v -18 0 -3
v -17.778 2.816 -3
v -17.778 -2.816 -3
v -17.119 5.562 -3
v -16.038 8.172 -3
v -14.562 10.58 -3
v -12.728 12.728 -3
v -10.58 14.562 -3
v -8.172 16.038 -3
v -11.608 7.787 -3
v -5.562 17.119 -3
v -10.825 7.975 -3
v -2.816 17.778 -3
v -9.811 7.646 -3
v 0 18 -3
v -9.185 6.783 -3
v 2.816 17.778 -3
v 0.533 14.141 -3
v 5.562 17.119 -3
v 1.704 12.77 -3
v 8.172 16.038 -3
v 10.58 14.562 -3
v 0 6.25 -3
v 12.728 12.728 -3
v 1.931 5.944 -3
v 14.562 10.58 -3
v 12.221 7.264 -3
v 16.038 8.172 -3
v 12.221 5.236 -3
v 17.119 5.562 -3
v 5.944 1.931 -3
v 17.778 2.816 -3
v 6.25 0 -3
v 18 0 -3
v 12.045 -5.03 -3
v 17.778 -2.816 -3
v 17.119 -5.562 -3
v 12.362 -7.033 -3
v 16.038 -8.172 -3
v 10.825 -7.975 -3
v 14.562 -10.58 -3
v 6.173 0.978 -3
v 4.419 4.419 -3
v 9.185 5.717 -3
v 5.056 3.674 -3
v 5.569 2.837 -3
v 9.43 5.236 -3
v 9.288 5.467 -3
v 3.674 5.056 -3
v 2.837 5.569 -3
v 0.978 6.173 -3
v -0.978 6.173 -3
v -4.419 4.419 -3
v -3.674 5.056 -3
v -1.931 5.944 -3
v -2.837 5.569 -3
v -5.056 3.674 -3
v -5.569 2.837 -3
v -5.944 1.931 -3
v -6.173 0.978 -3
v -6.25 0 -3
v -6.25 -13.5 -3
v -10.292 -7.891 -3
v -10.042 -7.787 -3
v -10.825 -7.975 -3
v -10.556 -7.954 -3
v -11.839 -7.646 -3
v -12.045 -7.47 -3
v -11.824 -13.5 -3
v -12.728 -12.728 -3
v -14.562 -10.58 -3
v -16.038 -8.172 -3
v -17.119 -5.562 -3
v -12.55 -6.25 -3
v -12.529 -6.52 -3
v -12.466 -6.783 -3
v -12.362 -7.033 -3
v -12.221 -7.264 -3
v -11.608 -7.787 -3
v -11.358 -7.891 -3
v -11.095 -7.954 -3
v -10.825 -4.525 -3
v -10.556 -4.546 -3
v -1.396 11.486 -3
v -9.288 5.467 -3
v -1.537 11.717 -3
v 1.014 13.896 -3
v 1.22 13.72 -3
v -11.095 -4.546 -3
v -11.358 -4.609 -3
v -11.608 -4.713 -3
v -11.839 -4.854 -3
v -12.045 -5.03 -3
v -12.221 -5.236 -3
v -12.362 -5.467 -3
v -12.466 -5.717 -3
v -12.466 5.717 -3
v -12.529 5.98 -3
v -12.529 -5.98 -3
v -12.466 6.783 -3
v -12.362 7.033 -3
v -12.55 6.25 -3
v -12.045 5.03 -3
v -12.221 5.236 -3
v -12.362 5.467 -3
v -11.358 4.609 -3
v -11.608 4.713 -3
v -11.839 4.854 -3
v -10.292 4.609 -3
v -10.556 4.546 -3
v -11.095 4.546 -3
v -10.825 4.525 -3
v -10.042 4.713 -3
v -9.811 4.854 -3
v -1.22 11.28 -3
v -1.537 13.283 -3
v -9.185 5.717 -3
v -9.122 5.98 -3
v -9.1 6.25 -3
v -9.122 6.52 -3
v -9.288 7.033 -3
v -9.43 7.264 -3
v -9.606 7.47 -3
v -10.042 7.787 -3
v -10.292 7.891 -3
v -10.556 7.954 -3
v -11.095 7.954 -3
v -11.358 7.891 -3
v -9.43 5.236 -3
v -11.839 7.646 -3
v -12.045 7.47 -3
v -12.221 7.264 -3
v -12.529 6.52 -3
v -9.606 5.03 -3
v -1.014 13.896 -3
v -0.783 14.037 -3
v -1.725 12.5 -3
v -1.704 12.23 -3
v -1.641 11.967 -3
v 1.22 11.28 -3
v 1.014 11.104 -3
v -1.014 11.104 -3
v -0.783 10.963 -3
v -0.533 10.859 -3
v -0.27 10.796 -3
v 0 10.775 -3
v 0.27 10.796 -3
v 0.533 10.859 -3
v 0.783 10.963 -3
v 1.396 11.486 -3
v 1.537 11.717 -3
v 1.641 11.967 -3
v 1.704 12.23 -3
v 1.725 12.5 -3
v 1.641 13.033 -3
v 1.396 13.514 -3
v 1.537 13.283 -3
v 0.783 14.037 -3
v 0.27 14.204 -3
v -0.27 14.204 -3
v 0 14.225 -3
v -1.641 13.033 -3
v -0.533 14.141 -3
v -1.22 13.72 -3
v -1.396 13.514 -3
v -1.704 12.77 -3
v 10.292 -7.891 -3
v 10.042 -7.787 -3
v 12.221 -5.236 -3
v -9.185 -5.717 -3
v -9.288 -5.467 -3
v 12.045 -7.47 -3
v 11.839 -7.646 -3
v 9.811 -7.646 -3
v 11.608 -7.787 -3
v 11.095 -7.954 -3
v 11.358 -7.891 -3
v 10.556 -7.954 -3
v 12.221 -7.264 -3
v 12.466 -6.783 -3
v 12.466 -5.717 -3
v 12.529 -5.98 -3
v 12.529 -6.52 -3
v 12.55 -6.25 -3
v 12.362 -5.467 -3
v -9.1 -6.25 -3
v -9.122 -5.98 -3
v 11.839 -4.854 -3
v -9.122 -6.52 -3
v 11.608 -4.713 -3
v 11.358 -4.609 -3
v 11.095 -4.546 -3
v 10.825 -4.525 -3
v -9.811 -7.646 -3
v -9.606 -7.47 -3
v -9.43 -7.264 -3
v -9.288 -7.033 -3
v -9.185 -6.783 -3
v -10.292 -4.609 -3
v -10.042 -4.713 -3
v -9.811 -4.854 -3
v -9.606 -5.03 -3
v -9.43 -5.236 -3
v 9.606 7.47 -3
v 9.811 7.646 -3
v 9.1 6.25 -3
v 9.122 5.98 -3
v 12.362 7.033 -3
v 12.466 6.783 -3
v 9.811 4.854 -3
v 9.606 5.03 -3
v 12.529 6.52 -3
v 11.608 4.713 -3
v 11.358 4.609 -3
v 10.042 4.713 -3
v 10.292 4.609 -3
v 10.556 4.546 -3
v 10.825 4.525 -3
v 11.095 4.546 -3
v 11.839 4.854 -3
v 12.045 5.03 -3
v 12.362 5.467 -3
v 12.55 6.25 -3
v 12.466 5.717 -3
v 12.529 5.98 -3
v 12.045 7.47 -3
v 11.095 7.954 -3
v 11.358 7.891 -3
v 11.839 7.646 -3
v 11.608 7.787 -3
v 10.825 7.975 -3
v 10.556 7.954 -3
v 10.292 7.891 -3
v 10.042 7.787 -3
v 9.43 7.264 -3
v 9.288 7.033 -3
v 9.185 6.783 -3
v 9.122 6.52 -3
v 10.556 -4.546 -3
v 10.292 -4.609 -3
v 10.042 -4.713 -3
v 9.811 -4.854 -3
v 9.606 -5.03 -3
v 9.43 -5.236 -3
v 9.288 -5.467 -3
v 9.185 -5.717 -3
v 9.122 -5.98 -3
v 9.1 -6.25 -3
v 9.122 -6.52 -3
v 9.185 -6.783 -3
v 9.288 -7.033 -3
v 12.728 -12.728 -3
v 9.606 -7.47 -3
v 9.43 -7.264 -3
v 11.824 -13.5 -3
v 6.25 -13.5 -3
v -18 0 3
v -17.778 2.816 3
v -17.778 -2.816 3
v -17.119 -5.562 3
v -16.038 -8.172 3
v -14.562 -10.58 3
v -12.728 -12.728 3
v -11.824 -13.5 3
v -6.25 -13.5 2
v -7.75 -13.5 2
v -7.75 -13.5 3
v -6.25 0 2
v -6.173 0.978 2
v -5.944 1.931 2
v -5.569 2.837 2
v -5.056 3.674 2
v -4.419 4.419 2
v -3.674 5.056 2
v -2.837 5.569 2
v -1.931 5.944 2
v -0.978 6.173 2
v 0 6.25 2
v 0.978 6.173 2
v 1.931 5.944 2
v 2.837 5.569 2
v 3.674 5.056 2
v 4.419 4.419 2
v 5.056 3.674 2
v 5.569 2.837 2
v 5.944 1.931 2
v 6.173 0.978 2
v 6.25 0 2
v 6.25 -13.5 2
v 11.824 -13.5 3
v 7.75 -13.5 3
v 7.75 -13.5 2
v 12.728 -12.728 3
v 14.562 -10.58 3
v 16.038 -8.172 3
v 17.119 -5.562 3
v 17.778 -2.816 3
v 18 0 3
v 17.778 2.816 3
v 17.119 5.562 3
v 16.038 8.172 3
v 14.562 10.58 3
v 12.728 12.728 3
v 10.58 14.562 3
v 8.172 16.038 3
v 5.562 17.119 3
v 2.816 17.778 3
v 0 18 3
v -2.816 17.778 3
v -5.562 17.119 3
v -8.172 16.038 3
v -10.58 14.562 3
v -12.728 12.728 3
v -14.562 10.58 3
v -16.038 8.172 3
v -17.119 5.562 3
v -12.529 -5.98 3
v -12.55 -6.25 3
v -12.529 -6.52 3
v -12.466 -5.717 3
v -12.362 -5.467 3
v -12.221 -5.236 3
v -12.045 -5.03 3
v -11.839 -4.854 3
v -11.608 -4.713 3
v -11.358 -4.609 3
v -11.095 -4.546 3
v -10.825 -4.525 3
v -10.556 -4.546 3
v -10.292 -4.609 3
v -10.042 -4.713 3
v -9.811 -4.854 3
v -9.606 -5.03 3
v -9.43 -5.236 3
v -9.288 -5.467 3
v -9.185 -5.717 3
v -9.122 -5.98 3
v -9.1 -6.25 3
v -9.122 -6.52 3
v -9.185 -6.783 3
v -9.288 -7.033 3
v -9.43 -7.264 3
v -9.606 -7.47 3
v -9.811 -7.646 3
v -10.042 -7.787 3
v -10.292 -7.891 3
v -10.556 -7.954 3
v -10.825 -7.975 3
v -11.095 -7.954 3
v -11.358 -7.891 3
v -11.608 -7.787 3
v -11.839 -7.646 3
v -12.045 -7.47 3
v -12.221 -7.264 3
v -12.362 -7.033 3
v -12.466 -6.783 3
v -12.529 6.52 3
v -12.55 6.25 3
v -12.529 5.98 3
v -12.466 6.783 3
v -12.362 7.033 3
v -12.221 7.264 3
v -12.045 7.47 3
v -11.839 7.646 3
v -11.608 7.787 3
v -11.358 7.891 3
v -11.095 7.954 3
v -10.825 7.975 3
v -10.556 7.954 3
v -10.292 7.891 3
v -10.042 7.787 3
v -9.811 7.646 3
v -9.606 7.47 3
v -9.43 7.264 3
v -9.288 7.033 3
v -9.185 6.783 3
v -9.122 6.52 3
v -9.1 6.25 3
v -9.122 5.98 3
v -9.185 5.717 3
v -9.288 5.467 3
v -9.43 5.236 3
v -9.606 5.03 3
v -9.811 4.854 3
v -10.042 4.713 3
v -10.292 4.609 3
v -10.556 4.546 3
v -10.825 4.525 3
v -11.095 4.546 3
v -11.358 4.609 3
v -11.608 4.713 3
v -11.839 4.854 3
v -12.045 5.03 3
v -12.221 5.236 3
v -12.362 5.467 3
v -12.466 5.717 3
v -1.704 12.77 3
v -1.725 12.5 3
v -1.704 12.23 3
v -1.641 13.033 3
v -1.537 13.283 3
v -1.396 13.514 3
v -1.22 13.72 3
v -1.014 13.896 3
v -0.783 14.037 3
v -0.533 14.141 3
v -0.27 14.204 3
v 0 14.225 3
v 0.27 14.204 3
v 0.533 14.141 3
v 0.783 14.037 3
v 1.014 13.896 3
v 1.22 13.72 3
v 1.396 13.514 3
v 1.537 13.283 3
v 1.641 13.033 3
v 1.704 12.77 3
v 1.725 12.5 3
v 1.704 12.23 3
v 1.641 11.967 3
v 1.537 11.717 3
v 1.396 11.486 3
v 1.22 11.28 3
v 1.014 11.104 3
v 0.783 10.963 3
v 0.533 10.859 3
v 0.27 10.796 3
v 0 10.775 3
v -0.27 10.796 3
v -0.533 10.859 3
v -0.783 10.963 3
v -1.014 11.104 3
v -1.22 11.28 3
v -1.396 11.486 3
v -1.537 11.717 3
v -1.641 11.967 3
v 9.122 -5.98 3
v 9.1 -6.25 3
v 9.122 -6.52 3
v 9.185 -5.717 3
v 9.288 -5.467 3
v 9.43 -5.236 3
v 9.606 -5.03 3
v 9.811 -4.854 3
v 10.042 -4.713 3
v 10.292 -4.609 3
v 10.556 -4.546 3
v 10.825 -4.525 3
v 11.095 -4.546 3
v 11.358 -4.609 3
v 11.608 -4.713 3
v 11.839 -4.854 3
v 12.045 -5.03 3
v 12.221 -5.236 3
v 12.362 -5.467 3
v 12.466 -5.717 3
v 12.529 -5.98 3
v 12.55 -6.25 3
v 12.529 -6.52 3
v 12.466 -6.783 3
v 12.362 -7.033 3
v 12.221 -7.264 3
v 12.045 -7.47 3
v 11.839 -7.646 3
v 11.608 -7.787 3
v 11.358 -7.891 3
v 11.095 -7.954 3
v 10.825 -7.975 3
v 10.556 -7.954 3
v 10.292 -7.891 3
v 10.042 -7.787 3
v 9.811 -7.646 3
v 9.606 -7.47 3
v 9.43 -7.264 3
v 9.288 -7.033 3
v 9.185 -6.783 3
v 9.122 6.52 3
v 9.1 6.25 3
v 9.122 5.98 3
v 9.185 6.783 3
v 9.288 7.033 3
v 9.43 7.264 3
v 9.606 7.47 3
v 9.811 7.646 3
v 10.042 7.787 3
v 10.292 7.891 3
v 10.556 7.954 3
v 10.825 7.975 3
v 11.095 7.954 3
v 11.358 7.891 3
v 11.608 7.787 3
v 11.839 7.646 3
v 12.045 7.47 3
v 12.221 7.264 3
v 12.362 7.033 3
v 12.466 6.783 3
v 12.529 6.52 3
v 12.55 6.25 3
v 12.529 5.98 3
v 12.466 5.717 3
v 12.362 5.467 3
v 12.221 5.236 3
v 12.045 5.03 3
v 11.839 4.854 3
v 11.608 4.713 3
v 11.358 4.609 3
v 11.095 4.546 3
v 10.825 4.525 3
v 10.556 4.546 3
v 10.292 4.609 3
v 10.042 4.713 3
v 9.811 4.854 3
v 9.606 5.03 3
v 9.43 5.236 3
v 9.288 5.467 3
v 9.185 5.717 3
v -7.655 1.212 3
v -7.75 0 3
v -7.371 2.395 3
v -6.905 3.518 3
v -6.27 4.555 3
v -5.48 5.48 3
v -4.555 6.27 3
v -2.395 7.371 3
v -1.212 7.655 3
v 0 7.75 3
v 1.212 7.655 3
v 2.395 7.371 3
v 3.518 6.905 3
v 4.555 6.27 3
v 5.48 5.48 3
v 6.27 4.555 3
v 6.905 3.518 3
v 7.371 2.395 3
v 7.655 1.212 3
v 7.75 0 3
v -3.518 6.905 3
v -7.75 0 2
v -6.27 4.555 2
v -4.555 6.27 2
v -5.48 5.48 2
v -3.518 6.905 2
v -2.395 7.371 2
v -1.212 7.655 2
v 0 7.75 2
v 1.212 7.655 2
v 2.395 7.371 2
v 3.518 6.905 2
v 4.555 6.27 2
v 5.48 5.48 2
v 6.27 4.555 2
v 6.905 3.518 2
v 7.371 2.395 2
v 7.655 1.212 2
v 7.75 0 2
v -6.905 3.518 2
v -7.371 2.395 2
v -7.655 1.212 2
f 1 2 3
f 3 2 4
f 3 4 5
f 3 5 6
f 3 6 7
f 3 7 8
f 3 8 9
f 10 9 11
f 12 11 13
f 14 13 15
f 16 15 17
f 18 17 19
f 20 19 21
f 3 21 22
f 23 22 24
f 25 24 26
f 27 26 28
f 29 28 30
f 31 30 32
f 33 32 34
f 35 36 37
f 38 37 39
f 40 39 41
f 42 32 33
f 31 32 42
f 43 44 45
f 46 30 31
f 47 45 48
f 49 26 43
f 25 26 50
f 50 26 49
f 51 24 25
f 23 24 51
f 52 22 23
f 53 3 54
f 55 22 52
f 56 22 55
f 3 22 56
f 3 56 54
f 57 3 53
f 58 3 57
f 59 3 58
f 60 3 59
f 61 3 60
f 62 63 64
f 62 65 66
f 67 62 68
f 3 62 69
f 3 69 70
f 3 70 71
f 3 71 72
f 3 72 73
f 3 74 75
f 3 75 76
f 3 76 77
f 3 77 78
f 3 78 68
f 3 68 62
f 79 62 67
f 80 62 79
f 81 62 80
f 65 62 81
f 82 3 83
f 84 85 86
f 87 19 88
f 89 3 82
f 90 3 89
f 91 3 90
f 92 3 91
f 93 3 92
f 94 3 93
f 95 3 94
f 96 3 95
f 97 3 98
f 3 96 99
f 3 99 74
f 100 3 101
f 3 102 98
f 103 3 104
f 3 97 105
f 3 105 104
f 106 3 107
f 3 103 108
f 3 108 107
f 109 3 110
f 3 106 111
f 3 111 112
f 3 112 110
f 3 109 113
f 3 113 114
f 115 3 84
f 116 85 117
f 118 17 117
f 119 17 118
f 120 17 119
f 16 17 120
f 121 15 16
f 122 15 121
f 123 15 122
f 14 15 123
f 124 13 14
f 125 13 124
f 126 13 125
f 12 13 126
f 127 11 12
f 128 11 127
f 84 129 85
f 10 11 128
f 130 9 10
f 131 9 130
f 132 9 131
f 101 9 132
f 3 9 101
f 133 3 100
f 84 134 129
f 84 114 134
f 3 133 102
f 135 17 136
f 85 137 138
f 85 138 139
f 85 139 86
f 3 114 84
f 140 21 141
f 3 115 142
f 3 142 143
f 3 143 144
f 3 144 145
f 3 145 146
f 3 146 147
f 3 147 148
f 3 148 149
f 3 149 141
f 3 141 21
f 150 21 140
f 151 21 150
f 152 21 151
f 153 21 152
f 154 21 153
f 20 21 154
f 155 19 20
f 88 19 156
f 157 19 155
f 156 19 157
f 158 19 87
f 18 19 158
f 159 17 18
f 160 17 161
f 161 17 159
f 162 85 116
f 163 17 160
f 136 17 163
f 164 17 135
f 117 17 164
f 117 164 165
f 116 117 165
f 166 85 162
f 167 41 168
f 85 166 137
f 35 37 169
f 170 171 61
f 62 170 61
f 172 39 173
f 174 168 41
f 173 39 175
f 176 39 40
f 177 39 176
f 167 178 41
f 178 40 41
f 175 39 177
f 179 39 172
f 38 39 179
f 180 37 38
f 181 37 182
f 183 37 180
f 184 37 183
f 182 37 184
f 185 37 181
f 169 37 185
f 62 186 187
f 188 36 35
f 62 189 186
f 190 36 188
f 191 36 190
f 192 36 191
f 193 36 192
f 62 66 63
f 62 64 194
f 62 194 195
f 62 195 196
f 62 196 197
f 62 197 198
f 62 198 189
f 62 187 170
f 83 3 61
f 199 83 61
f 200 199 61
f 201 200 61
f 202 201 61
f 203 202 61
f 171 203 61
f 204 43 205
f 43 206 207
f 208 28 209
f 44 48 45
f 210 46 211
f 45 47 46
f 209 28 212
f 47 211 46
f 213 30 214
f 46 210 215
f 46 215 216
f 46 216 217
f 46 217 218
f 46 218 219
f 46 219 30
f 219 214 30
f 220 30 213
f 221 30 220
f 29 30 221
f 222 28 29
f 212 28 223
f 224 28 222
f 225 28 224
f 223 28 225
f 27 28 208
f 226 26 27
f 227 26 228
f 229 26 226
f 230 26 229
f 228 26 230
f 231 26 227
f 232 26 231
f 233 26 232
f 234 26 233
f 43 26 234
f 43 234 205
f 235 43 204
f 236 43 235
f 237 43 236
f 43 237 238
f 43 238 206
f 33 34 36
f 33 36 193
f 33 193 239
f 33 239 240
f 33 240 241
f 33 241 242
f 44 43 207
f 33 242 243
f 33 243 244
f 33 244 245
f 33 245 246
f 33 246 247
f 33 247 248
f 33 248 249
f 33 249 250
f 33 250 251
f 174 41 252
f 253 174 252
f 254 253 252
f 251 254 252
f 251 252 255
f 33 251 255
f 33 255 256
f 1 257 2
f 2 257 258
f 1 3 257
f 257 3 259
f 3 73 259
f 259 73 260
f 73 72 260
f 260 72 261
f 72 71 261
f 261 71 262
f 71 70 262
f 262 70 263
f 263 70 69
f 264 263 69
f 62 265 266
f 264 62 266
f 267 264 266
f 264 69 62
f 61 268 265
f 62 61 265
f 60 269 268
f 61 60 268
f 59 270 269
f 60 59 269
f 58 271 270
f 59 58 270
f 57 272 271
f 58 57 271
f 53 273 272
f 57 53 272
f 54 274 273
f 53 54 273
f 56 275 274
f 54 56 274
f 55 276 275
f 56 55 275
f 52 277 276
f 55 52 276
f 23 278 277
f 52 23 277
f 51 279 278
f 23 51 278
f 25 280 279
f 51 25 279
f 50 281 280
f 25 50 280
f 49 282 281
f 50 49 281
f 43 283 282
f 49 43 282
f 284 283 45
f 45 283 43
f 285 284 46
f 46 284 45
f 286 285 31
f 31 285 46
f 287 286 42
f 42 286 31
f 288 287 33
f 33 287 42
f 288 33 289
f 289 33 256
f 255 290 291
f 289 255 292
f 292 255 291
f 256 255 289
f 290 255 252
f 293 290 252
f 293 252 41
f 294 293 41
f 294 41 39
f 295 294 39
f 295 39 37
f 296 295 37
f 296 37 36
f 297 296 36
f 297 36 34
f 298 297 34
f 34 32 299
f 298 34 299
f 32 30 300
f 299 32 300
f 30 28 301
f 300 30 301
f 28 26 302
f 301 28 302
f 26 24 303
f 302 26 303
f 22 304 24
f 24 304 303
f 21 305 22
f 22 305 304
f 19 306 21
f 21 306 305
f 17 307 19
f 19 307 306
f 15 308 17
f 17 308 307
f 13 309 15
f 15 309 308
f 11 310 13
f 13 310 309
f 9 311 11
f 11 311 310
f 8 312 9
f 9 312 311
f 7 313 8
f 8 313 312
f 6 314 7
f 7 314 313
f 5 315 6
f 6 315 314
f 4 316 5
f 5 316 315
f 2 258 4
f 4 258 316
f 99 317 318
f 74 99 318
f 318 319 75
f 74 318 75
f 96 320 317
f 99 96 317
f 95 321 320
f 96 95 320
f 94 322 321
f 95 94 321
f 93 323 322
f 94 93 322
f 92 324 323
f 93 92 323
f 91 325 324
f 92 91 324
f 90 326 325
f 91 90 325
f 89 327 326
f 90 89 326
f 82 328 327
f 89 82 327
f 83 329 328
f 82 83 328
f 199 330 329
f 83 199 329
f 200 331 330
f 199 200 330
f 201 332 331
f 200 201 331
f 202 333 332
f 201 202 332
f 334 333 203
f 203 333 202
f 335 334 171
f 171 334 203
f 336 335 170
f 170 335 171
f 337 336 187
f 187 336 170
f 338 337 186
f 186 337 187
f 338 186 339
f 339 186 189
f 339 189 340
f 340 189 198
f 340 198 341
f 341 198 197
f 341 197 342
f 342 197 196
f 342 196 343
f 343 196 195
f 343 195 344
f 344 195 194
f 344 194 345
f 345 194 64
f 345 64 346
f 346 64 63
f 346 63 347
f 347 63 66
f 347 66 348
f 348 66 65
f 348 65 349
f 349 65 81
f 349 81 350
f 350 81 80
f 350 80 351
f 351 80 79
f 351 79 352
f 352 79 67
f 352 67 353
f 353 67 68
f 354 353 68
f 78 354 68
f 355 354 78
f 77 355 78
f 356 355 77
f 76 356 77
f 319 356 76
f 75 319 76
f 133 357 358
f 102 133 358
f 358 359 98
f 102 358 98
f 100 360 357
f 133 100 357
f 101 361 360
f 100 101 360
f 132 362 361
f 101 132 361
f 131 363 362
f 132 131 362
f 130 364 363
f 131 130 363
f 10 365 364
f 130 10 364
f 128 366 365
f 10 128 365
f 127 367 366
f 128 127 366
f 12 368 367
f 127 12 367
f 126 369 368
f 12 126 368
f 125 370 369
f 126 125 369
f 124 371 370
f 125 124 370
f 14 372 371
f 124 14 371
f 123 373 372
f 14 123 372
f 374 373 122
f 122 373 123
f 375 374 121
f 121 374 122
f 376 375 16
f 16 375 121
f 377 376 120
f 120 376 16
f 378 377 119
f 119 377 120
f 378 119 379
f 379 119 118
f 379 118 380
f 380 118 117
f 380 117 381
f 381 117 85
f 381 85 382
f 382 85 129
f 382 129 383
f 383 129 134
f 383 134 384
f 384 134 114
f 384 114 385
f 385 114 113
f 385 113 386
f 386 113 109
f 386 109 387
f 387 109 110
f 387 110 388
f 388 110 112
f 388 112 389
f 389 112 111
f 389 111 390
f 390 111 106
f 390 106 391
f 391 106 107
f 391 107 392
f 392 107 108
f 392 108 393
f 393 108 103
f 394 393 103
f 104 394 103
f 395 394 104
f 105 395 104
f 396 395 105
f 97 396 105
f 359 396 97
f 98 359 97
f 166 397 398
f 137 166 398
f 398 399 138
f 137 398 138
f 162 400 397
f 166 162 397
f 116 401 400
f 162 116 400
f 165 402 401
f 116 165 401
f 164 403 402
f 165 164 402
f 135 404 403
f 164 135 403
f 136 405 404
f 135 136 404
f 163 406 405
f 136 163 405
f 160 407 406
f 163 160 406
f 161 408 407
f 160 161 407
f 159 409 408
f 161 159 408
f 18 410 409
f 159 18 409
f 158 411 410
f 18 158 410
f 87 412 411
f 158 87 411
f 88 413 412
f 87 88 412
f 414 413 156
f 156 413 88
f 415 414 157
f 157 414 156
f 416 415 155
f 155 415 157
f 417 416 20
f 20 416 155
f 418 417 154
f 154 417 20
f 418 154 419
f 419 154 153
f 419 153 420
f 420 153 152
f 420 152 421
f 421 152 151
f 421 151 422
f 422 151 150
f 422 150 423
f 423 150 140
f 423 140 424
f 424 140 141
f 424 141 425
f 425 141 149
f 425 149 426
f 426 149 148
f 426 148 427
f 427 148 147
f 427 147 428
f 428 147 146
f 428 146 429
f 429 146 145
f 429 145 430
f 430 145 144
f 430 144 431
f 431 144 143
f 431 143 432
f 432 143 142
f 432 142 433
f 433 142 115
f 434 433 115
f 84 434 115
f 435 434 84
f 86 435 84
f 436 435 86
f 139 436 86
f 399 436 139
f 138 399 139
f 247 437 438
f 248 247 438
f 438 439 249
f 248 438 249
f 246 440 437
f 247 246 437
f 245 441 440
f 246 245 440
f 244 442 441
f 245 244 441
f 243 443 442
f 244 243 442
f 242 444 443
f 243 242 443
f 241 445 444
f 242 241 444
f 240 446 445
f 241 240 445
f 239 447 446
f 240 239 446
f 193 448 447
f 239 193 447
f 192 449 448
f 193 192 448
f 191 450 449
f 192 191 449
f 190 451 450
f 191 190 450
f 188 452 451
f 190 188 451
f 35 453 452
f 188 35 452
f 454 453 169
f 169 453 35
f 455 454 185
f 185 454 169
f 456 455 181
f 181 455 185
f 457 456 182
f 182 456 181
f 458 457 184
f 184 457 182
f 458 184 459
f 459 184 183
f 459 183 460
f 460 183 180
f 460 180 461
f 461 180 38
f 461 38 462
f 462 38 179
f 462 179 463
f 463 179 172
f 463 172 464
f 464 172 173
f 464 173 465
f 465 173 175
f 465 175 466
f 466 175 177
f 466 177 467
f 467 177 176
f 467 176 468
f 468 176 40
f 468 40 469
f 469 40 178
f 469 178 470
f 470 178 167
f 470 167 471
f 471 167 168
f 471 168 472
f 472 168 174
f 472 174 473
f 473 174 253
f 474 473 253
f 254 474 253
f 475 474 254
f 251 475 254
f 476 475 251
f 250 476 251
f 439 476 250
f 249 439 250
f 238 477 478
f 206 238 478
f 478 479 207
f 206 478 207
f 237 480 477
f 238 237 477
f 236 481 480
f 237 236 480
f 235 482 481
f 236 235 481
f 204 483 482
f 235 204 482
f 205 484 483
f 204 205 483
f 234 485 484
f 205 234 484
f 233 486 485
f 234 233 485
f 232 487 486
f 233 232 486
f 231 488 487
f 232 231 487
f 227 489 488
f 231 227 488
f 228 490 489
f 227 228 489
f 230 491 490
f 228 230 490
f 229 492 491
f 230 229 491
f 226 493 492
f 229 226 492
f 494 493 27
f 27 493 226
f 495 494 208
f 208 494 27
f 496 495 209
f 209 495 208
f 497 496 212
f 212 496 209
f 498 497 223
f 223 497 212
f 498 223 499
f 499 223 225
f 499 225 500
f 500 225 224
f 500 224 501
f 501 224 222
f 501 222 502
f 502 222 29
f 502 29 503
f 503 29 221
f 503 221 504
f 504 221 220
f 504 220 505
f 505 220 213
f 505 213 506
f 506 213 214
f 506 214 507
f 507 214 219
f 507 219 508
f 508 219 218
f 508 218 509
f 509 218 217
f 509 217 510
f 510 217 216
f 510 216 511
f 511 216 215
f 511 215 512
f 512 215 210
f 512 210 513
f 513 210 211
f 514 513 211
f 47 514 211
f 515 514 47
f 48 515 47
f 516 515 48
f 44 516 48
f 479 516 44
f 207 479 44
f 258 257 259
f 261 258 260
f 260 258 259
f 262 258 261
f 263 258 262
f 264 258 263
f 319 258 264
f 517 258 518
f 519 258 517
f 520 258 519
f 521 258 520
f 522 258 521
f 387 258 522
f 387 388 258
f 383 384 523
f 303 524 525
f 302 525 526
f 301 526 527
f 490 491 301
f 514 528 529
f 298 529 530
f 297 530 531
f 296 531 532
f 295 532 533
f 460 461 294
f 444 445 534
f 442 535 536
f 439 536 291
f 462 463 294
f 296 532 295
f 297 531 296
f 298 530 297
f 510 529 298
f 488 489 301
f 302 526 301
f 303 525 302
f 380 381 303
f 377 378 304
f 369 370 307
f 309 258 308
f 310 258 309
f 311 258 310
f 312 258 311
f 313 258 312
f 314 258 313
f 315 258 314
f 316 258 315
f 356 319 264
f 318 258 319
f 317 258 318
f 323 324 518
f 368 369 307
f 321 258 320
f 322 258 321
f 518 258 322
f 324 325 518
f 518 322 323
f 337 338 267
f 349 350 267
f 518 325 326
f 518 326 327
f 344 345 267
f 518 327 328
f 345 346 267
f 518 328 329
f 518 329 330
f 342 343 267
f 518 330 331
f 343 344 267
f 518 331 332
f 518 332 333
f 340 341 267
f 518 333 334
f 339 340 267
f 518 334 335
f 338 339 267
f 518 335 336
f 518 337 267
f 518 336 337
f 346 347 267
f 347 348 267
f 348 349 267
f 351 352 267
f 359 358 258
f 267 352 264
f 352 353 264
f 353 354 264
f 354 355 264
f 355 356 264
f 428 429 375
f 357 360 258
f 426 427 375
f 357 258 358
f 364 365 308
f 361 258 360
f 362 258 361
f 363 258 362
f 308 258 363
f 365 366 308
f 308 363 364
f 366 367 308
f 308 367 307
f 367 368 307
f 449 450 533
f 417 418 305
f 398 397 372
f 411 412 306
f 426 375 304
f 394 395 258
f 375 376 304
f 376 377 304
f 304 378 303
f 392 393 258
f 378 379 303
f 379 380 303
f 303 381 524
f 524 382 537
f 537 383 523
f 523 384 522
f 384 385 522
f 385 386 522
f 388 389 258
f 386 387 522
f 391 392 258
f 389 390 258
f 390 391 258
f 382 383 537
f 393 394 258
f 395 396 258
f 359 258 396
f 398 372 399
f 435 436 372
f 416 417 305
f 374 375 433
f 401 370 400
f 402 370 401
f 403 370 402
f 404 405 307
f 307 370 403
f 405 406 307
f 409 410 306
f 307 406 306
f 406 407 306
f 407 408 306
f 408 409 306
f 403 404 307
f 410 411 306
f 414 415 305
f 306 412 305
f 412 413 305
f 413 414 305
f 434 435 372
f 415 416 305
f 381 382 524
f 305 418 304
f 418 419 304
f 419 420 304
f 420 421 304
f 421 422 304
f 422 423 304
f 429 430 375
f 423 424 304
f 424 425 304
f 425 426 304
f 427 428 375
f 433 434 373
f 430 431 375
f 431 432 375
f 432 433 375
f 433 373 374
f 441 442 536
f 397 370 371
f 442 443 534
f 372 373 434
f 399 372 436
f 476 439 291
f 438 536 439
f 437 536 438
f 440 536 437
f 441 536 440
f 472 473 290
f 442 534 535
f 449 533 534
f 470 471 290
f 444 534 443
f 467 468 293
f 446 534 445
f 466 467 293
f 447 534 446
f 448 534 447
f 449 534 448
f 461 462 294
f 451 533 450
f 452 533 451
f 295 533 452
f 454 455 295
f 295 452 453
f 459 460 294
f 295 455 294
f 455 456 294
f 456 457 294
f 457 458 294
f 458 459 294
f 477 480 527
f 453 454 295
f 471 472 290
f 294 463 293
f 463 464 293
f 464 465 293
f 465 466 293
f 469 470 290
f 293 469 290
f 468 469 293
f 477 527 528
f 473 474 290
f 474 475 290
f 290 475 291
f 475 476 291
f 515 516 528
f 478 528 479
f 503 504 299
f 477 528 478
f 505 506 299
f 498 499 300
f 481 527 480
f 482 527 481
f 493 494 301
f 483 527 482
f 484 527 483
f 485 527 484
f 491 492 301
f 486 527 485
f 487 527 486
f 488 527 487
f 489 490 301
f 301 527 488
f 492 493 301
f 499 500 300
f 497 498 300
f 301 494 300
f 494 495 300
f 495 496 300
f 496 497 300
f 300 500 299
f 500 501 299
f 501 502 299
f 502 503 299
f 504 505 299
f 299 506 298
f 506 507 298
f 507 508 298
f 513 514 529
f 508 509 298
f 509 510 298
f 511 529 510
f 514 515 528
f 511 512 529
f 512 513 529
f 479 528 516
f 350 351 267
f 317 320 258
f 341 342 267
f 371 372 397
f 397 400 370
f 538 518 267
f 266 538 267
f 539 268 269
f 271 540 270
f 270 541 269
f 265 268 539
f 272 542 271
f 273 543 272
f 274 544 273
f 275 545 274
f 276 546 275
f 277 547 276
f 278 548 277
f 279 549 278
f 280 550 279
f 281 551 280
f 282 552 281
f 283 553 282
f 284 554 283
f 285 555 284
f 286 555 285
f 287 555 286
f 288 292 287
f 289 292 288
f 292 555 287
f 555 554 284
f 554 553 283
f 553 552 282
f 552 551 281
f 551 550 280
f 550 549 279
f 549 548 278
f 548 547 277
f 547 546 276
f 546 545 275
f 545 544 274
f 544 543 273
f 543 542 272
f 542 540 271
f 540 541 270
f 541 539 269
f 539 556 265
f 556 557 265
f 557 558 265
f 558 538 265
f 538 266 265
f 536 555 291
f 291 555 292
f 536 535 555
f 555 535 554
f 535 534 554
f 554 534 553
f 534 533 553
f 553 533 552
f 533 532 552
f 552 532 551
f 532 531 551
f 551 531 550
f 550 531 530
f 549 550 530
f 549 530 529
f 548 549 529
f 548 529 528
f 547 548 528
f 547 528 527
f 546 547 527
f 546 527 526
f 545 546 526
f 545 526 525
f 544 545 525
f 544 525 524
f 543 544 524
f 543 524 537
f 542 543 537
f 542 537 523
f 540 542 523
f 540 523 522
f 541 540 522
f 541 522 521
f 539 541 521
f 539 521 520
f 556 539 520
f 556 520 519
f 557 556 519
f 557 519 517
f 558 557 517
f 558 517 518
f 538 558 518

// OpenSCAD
// file: configuration.scad
// Increase this if your slicer or printer make holes too tight.
extra_radius = 0.1;

// OD = outside diameter, corner to corner.
m3_nut_od = 6.1;
m3_nut_radius = m3_nut_od/2 + 0.2 + extra_radius;
m3_washer_radius = 3.5 + extra_radius;

// Major diameter of metric 3mm thread.
m3_major = 2.85;
m3_radius = m3_major/2 + extra_radius;
m3_wide_radius = m3_major/2 + extra_radius + 0.2;

// NEMA17 stepper motors.
motor_shaft_diameter = 5;
motor_shaft_radius = motor_shaft_diameter/2 + extra_radius;

// Frame brackets. M3x8mm screws work best with 3.6 mm brackets.
thickness = 3.6;

// OpenBeam or Misumi. Currently only 15x15 mm, but there is a plan
// to make models more parametric and allow 20x20 mm in the future.
extrusion = 15;

// Placement for the NEMA17 stepper motors.
motor_offset = 44;
motor_length = 47;

probe_tunnel_radius = 1.25 + extra_radius;
probe_excentricity = 5;
// main file
include <configuration.scad>;

// Overall mount dimensions
mount_radius = 18;
mount_thickness = 6;

// Through holes
hole_radius = 12.5;

// Slot and lip for installation
slot_radius = 6.25;
lip_radius = 7.75;
lip_thickness = 1;

$fn = 40;

difference() {
  cylinder(r=mount_radius, h=mount_thickness, center=true);

  // Thru holes
  for (hole_angle = [0:60:360]) {
    translate([sin(hole_angle)*hole_radius,cos(hole_angle)*hole_radius,0]) cylinder(r=m3_wide_radius, h=mount_thickness, center=true);
  }

  // Thru slot
  cylinder(r=slot_radius, h=mount_thickness, center=true);
  translate([0, -mount_radius/2, 0]) cube([2*slot_radius, mount_radius, mount_thickness], center=true);

  // Lip 
  translate([0, 0, (mount_thickness-lip_thickness)/2]) cylinder(r=lip_radius, h=lip_thickness, center=true);
  translate([0, -mount_radius/2, (mount_thickness-lip_thickness)/2]) cube([2*lip_radius, mount_radius, lip_thickness], center=true);

  // Cut off the sharp edges at the front
  translate([0, -7/4*mount_radius, 0]) cube([2*mount_radius, 2*mount_radius, mount_thickness], center=true);
};
